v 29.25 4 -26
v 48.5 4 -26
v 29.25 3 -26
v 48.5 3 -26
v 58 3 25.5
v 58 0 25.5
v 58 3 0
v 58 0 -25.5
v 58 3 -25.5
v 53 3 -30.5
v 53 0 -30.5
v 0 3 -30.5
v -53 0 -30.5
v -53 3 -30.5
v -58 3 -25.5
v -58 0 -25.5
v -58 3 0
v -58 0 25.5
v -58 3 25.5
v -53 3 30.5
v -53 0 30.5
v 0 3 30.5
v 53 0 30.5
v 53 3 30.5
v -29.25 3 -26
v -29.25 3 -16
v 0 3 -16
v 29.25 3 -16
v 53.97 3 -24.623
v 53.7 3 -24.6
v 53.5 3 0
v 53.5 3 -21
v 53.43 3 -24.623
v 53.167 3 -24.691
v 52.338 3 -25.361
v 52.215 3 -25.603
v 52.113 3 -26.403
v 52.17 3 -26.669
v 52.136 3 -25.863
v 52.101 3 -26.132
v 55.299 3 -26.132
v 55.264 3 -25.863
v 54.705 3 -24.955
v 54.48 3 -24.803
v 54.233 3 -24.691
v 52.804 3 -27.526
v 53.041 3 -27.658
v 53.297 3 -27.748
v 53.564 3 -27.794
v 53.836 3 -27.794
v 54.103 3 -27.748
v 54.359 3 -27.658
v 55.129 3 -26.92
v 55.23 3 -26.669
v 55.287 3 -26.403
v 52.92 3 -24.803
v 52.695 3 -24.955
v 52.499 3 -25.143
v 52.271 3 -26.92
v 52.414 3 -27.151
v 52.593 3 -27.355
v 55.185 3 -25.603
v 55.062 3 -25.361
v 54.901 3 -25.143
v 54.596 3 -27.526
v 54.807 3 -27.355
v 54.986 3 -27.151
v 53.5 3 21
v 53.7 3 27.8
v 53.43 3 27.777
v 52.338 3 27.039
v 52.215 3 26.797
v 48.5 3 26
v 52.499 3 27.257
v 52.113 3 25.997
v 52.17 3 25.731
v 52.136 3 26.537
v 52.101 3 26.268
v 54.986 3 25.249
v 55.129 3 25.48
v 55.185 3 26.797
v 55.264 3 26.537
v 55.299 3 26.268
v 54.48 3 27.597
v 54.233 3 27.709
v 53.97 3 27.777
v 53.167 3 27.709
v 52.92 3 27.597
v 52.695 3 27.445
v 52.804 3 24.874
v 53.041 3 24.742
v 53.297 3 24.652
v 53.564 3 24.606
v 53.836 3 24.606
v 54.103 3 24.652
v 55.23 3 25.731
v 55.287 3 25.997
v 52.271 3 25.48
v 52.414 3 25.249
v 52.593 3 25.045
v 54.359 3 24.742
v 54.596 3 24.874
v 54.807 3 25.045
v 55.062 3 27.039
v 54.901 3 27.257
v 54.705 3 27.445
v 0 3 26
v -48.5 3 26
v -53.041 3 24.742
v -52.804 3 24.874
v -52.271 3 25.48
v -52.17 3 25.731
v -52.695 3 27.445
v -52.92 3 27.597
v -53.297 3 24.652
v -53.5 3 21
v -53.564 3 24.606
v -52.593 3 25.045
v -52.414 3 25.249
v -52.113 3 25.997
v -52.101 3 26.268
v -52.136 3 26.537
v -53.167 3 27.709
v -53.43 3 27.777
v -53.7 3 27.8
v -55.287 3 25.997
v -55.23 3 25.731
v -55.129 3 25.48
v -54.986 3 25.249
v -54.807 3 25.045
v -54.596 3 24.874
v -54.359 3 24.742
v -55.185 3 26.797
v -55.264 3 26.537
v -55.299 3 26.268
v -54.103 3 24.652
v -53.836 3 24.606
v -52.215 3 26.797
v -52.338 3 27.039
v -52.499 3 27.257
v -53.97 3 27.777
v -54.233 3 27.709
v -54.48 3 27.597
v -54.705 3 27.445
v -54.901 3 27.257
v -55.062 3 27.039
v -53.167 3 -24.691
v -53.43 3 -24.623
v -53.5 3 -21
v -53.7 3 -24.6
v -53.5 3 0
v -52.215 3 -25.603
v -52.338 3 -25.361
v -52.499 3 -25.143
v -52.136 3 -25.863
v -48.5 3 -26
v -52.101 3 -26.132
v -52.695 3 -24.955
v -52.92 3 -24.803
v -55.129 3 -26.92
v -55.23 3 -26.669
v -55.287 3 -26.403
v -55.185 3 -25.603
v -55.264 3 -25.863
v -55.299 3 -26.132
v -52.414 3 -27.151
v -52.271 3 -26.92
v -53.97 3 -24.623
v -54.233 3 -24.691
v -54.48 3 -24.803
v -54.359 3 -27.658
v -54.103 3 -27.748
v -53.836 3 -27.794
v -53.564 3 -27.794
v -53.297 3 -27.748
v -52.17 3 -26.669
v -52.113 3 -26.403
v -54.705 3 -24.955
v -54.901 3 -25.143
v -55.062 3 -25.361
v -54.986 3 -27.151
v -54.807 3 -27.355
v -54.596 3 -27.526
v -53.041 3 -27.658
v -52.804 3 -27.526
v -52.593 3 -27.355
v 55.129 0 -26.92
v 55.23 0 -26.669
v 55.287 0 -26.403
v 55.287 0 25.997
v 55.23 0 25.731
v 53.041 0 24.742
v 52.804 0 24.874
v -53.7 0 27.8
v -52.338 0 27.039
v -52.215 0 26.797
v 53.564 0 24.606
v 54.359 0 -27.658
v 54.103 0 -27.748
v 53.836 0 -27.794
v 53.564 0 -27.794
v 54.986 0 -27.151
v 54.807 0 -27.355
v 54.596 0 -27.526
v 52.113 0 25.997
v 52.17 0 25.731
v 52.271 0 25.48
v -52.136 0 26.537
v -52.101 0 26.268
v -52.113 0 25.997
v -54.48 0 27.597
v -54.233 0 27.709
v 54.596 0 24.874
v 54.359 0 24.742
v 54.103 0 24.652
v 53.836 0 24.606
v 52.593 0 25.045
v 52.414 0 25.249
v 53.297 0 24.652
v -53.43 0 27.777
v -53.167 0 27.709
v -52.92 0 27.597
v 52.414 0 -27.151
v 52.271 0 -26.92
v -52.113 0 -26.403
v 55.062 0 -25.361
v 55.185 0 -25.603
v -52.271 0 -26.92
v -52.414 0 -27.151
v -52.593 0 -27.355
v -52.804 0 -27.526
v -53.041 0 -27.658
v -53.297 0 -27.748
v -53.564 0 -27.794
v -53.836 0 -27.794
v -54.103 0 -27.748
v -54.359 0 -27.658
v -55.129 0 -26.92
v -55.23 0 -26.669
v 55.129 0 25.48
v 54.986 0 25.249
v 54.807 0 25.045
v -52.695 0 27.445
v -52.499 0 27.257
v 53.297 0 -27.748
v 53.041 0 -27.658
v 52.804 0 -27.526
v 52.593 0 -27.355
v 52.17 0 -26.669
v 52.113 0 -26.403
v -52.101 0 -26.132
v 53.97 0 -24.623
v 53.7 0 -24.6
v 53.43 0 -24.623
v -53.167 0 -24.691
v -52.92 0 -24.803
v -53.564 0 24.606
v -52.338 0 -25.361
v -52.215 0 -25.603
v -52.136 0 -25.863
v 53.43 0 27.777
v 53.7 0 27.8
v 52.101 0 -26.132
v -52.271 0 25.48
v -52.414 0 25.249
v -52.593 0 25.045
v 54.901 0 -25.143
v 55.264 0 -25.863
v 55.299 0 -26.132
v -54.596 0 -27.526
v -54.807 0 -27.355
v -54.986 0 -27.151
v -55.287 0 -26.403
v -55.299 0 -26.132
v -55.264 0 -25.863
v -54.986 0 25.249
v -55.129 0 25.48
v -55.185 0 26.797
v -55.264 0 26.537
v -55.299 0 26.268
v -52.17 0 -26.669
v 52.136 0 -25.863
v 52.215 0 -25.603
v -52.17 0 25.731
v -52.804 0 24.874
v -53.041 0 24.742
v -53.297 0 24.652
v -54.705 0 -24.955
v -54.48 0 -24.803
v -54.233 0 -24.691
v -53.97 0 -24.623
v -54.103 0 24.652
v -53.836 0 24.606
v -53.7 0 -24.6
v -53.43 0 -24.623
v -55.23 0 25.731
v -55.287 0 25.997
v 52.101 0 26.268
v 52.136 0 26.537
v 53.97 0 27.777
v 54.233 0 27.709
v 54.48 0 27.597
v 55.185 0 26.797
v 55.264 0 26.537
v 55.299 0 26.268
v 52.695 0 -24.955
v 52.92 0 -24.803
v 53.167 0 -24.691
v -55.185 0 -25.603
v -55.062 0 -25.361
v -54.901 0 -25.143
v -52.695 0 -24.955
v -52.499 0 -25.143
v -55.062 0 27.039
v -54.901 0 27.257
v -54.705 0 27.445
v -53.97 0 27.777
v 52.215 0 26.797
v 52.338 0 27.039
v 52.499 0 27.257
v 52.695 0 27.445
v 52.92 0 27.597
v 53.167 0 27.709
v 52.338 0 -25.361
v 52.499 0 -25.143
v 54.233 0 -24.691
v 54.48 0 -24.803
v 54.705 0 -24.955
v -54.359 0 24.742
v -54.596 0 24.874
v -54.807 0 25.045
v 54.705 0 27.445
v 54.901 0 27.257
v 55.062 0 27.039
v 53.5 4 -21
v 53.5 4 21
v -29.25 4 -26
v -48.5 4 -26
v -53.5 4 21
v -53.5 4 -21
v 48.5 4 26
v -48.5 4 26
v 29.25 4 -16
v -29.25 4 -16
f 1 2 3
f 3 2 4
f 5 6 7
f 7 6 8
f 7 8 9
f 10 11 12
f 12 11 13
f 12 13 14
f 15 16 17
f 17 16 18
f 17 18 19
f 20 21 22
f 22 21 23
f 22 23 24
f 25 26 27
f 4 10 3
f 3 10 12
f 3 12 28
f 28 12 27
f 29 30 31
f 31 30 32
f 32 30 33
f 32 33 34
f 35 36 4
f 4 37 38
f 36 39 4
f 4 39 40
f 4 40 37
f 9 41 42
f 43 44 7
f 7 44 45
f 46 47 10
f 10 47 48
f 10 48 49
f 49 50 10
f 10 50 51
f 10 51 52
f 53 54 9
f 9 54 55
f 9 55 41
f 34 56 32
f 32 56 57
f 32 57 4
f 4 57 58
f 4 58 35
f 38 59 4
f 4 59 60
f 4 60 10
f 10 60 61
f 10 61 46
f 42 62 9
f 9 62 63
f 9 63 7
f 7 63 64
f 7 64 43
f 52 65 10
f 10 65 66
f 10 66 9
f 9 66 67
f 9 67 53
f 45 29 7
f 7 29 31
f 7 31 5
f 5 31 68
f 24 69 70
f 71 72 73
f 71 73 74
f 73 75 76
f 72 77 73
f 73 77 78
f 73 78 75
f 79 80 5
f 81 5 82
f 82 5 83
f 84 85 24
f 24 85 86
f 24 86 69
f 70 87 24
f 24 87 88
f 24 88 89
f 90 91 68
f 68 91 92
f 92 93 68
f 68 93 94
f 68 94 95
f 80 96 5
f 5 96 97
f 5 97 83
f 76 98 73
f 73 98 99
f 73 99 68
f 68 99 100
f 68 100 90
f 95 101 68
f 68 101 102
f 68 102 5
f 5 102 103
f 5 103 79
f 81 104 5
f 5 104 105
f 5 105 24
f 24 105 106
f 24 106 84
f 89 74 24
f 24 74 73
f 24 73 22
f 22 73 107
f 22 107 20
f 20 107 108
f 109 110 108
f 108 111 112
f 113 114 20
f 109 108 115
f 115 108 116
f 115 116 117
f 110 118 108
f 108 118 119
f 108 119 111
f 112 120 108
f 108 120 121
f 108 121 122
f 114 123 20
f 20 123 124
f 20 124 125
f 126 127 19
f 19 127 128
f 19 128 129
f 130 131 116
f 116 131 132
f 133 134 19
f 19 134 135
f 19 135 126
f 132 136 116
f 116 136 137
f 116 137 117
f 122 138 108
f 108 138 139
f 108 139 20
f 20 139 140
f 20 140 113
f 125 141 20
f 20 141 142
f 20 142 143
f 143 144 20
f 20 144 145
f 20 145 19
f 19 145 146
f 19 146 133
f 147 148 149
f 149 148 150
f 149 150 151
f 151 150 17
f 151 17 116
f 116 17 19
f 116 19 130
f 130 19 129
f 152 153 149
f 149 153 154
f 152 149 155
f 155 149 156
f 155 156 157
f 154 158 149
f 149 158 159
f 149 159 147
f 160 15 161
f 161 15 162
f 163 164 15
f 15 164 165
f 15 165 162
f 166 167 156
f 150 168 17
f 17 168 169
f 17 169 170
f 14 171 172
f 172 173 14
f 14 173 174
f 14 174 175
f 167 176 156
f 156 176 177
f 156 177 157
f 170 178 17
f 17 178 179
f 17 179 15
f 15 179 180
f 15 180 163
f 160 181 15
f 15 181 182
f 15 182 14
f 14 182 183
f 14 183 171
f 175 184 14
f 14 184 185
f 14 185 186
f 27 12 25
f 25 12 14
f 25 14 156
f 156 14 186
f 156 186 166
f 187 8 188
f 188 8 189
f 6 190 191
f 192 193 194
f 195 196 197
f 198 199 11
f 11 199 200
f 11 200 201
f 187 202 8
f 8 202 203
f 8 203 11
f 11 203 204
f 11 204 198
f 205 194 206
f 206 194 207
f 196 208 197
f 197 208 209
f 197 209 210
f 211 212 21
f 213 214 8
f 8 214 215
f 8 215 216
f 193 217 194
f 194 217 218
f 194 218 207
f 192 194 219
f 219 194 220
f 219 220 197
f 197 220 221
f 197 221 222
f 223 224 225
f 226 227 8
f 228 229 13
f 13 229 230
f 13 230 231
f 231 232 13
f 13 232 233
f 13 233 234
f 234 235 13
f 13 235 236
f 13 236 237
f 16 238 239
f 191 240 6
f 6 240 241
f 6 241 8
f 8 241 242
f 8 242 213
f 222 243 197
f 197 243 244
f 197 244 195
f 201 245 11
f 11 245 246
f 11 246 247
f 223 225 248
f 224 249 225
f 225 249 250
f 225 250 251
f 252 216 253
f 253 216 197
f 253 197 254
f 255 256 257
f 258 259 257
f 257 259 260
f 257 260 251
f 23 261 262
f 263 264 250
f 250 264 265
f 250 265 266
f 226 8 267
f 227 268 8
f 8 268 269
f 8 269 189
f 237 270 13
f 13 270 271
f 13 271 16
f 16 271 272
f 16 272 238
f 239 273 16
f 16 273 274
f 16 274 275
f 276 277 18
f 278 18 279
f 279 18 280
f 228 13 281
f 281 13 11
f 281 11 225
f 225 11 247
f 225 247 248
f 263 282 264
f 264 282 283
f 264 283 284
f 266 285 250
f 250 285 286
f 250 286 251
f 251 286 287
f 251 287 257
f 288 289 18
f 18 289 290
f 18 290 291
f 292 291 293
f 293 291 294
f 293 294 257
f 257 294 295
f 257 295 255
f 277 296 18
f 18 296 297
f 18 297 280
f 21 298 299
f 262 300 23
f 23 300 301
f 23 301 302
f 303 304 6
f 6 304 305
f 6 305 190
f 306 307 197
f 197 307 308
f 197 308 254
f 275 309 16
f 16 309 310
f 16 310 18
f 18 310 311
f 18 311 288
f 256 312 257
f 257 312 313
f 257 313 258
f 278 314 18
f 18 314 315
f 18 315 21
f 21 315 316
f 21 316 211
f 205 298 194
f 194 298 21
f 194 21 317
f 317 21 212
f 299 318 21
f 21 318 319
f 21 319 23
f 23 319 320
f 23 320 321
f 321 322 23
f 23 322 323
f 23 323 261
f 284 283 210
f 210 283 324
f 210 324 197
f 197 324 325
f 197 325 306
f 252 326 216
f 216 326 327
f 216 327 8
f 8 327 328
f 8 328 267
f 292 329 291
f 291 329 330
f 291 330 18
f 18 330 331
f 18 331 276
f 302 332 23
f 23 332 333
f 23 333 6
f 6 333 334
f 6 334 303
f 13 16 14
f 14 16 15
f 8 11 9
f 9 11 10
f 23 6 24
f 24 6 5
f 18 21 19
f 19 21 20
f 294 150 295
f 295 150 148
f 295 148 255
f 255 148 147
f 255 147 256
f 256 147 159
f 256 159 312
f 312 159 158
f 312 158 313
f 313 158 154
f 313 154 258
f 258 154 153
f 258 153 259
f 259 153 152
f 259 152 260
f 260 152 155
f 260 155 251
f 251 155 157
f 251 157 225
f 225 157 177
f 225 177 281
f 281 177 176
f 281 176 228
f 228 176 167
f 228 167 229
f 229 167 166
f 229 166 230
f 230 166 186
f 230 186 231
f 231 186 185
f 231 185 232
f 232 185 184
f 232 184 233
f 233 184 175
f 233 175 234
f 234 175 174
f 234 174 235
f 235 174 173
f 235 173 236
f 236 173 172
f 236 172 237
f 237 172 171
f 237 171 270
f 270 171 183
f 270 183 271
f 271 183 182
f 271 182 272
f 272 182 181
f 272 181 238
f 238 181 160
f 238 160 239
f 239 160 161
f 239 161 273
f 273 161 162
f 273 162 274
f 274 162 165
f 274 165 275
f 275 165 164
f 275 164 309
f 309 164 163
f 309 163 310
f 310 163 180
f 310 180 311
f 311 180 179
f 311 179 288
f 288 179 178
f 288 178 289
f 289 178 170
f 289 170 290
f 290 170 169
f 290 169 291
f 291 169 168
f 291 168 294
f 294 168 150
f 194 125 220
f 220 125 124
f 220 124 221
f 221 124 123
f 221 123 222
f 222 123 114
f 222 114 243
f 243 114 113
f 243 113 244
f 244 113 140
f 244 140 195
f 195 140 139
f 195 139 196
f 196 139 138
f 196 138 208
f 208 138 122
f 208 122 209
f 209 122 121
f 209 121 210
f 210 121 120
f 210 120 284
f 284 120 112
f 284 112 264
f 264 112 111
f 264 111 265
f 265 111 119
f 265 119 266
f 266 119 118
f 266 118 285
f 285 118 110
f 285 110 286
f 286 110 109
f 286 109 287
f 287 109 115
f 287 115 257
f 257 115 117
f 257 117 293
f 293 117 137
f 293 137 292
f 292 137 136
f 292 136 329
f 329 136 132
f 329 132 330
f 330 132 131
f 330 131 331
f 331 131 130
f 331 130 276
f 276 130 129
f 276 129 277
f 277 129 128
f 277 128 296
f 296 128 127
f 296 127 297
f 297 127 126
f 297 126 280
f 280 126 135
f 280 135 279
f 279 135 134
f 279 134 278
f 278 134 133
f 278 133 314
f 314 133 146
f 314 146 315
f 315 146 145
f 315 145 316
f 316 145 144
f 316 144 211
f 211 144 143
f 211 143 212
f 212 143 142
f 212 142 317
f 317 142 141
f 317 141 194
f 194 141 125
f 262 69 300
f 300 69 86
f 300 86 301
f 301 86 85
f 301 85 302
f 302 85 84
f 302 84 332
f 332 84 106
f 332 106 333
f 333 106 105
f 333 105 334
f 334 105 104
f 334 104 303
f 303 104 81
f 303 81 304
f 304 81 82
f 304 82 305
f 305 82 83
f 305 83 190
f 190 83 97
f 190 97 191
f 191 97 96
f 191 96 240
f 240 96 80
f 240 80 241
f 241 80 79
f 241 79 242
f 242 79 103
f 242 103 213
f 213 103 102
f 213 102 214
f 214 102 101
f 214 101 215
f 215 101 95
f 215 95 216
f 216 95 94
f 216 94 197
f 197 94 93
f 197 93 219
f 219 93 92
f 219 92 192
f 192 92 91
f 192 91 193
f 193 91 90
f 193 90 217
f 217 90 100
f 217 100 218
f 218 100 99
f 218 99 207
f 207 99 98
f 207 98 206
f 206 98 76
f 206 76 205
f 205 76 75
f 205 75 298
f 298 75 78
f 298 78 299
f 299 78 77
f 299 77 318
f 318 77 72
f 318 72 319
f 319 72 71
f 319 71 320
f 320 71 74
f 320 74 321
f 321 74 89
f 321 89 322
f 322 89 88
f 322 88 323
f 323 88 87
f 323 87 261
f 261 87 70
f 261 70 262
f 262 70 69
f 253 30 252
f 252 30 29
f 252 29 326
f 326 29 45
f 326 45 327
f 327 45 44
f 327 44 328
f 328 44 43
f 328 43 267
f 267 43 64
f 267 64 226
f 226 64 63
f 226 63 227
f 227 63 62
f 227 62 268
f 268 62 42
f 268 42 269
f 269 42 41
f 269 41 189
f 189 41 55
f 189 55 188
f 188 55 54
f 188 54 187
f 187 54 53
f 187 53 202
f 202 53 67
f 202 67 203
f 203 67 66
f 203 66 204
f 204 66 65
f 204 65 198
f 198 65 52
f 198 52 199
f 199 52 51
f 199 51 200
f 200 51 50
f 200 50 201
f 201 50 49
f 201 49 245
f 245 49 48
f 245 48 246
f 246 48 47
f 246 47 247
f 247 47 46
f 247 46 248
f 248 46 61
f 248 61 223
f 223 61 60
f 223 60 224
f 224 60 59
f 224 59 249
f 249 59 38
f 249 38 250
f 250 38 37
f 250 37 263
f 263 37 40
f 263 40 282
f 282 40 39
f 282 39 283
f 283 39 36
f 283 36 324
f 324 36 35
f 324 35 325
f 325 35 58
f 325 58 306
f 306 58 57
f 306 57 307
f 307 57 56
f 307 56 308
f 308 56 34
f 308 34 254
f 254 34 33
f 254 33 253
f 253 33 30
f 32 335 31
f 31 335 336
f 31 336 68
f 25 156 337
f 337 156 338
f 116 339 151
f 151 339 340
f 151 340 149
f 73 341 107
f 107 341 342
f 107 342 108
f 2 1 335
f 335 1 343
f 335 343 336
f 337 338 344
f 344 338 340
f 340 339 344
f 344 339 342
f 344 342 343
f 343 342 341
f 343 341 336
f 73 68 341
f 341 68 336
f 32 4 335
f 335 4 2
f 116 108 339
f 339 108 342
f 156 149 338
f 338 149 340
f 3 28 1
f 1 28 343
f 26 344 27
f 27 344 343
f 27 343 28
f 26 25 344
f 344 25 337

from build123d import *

# Parameters (mm, degrees)
SKETCH1_W           = 116
SKETCH1_H           = 61
BOSS_EXTRUDE1_DEPTH = 3
CHAMFER1_SIZE       = 5
SKETCH2_R           = 1.6
CUT_EXTRUDE1_DEPTH  = 10
SKETCH3_W           = 107
SKETCH3_H           = 52
BOSS_EXTRUDE2_DEPTH = 1
CHAMFER2_SIZE       = 5
SKETCH4_W           = 58.5
SKETCH4_H           = 10
CUT_EXTRUDE2_DEPTH  = 1


with BuildPart() as part:
    # Sketch1 → Boss-Extrude1 (new body)
    with BuildSketch(Plane(origin=(0, 0, 0), x_dir=(1, 0, 0), z_dir=(0, 1, 0))):
        Rectangle(SKETCH1_W, SKETCH1_H)
    extrude(amount=BOSS_EXTRUDE1_DEPTH)

    # Chamfer1
    chamfer1_edges = [part.edges().sort_by_distance(p)[0] for p in [
        (58, 1.5, 30.5),
        (-58, 1.5, 30.5),
        (-58, 1.5, -30.5),
        (58, 1.5, -30.5),
    ]]
    chamfer(chamfer1_edges, length=CHAMFER1_SIZE)

    # Sketch2 → Cut-Extrude1 (cut)
    with BuildSketch(Plane(origin=(0, 3, 0), x_dir=(1, 0, 0), z_dir=(0, 1, 0))):
        with Locations(Location((-53.7, 26.2, 0), (0, 0, 270))):
            Circle(SKETCH2_R)
        with Locations(Location((53.7, 26.2, 0), (0, 0, 270))):
            Circle(SKETCH2_R)
        with Locations(Location((53.7, -26.2, 0), (0, 0, 270))):
            Circle(SKETCH2_R)
        with Locations(Location((-53.7, -26.2, 0), (0, 0, 270))):
            Circle(SKETCH2_R)
    extrude(amount=-CUT_EXTRUDE1_DEPTH, mode=Mode.SUBTRACT)

    # Sketch3 → Boss-Extrude2 (add)
    with BuildSketch(Plane(origin=(0, 3, 0), x_dir=(1, 0, 0), z_dir=(0, 1, 0))):
        Rectangle(SKETCH3_W, SKETCH3_H)
    extrude(amount=BOSS_EXTRUDE2_DEPTH)

    # Chamfer2
    # the kernel refuses this chamfer: 5 mm, written as the material it takes off along each edge
    with BuildSketch(Plane(origin=(53.5, 3, 26), x_dir=(-0.9996219169112968, 0, 0.027495876610586317), z_dir=(0, 1, 0))) as chamfer2_piece_1:
        Polygon((CHAMFER2_SIZE * 0.999621916911, -CHAMFER2_SIZE * 0.0274958766106), (-CHAMFER2_SIZE * 0.0274958766106, -CHAMFER2_SIZE * 0.999621916911), (0, 0), align=None)
    extrude(amount=13.85841494, mode=Mode.SUBTRACT)
    with BuildSketch(Plane(origin=(53.5, 3, -26), x_dir=(-0.9996219169112968, 0, -0.027495876610586282), z_dir=(0, 1, 0)), Plane(origin=(-53.5, 3, -26), x_dir=(-0.027495876610586317, 0, 0.9996219169112968), z_dir=(0, 1, 0)), Plane(origin=(-53.5, 3, 26), x_dir=(0.9996219169112968, 0, 0.027495876610586282), z_dir=(0, 1, 0))) as chamfer2_piece_2:
        Polygon((CHAMFER2_SIZE * 0.999621916911, CHAMFER2_SIZE * 0.0274958766106), (-CHAMFER2_SIZE * 0.0274958766106, CHAMFER2_SIZE * 0.999621916911), (0, 0), align=None)
    extrude(amount=13.85841494, mode=Mode.SUBTRACT)

    # Sketch4 → Cut-Extrude2 (cut)
    with BuildSketch(Plane(origin=(0, 4, 0), x_dir=(1, 0, 0), z_dir=(0, 1, 0))):
        with Locations((0, 21)):
            Rectangle(SKETCH4_W, SKETCH4_H)
    extrude(amount=-CUT_EXTRUDE2_DEPTH, mode=Mode.SUBTRACT)


solid = part.part
